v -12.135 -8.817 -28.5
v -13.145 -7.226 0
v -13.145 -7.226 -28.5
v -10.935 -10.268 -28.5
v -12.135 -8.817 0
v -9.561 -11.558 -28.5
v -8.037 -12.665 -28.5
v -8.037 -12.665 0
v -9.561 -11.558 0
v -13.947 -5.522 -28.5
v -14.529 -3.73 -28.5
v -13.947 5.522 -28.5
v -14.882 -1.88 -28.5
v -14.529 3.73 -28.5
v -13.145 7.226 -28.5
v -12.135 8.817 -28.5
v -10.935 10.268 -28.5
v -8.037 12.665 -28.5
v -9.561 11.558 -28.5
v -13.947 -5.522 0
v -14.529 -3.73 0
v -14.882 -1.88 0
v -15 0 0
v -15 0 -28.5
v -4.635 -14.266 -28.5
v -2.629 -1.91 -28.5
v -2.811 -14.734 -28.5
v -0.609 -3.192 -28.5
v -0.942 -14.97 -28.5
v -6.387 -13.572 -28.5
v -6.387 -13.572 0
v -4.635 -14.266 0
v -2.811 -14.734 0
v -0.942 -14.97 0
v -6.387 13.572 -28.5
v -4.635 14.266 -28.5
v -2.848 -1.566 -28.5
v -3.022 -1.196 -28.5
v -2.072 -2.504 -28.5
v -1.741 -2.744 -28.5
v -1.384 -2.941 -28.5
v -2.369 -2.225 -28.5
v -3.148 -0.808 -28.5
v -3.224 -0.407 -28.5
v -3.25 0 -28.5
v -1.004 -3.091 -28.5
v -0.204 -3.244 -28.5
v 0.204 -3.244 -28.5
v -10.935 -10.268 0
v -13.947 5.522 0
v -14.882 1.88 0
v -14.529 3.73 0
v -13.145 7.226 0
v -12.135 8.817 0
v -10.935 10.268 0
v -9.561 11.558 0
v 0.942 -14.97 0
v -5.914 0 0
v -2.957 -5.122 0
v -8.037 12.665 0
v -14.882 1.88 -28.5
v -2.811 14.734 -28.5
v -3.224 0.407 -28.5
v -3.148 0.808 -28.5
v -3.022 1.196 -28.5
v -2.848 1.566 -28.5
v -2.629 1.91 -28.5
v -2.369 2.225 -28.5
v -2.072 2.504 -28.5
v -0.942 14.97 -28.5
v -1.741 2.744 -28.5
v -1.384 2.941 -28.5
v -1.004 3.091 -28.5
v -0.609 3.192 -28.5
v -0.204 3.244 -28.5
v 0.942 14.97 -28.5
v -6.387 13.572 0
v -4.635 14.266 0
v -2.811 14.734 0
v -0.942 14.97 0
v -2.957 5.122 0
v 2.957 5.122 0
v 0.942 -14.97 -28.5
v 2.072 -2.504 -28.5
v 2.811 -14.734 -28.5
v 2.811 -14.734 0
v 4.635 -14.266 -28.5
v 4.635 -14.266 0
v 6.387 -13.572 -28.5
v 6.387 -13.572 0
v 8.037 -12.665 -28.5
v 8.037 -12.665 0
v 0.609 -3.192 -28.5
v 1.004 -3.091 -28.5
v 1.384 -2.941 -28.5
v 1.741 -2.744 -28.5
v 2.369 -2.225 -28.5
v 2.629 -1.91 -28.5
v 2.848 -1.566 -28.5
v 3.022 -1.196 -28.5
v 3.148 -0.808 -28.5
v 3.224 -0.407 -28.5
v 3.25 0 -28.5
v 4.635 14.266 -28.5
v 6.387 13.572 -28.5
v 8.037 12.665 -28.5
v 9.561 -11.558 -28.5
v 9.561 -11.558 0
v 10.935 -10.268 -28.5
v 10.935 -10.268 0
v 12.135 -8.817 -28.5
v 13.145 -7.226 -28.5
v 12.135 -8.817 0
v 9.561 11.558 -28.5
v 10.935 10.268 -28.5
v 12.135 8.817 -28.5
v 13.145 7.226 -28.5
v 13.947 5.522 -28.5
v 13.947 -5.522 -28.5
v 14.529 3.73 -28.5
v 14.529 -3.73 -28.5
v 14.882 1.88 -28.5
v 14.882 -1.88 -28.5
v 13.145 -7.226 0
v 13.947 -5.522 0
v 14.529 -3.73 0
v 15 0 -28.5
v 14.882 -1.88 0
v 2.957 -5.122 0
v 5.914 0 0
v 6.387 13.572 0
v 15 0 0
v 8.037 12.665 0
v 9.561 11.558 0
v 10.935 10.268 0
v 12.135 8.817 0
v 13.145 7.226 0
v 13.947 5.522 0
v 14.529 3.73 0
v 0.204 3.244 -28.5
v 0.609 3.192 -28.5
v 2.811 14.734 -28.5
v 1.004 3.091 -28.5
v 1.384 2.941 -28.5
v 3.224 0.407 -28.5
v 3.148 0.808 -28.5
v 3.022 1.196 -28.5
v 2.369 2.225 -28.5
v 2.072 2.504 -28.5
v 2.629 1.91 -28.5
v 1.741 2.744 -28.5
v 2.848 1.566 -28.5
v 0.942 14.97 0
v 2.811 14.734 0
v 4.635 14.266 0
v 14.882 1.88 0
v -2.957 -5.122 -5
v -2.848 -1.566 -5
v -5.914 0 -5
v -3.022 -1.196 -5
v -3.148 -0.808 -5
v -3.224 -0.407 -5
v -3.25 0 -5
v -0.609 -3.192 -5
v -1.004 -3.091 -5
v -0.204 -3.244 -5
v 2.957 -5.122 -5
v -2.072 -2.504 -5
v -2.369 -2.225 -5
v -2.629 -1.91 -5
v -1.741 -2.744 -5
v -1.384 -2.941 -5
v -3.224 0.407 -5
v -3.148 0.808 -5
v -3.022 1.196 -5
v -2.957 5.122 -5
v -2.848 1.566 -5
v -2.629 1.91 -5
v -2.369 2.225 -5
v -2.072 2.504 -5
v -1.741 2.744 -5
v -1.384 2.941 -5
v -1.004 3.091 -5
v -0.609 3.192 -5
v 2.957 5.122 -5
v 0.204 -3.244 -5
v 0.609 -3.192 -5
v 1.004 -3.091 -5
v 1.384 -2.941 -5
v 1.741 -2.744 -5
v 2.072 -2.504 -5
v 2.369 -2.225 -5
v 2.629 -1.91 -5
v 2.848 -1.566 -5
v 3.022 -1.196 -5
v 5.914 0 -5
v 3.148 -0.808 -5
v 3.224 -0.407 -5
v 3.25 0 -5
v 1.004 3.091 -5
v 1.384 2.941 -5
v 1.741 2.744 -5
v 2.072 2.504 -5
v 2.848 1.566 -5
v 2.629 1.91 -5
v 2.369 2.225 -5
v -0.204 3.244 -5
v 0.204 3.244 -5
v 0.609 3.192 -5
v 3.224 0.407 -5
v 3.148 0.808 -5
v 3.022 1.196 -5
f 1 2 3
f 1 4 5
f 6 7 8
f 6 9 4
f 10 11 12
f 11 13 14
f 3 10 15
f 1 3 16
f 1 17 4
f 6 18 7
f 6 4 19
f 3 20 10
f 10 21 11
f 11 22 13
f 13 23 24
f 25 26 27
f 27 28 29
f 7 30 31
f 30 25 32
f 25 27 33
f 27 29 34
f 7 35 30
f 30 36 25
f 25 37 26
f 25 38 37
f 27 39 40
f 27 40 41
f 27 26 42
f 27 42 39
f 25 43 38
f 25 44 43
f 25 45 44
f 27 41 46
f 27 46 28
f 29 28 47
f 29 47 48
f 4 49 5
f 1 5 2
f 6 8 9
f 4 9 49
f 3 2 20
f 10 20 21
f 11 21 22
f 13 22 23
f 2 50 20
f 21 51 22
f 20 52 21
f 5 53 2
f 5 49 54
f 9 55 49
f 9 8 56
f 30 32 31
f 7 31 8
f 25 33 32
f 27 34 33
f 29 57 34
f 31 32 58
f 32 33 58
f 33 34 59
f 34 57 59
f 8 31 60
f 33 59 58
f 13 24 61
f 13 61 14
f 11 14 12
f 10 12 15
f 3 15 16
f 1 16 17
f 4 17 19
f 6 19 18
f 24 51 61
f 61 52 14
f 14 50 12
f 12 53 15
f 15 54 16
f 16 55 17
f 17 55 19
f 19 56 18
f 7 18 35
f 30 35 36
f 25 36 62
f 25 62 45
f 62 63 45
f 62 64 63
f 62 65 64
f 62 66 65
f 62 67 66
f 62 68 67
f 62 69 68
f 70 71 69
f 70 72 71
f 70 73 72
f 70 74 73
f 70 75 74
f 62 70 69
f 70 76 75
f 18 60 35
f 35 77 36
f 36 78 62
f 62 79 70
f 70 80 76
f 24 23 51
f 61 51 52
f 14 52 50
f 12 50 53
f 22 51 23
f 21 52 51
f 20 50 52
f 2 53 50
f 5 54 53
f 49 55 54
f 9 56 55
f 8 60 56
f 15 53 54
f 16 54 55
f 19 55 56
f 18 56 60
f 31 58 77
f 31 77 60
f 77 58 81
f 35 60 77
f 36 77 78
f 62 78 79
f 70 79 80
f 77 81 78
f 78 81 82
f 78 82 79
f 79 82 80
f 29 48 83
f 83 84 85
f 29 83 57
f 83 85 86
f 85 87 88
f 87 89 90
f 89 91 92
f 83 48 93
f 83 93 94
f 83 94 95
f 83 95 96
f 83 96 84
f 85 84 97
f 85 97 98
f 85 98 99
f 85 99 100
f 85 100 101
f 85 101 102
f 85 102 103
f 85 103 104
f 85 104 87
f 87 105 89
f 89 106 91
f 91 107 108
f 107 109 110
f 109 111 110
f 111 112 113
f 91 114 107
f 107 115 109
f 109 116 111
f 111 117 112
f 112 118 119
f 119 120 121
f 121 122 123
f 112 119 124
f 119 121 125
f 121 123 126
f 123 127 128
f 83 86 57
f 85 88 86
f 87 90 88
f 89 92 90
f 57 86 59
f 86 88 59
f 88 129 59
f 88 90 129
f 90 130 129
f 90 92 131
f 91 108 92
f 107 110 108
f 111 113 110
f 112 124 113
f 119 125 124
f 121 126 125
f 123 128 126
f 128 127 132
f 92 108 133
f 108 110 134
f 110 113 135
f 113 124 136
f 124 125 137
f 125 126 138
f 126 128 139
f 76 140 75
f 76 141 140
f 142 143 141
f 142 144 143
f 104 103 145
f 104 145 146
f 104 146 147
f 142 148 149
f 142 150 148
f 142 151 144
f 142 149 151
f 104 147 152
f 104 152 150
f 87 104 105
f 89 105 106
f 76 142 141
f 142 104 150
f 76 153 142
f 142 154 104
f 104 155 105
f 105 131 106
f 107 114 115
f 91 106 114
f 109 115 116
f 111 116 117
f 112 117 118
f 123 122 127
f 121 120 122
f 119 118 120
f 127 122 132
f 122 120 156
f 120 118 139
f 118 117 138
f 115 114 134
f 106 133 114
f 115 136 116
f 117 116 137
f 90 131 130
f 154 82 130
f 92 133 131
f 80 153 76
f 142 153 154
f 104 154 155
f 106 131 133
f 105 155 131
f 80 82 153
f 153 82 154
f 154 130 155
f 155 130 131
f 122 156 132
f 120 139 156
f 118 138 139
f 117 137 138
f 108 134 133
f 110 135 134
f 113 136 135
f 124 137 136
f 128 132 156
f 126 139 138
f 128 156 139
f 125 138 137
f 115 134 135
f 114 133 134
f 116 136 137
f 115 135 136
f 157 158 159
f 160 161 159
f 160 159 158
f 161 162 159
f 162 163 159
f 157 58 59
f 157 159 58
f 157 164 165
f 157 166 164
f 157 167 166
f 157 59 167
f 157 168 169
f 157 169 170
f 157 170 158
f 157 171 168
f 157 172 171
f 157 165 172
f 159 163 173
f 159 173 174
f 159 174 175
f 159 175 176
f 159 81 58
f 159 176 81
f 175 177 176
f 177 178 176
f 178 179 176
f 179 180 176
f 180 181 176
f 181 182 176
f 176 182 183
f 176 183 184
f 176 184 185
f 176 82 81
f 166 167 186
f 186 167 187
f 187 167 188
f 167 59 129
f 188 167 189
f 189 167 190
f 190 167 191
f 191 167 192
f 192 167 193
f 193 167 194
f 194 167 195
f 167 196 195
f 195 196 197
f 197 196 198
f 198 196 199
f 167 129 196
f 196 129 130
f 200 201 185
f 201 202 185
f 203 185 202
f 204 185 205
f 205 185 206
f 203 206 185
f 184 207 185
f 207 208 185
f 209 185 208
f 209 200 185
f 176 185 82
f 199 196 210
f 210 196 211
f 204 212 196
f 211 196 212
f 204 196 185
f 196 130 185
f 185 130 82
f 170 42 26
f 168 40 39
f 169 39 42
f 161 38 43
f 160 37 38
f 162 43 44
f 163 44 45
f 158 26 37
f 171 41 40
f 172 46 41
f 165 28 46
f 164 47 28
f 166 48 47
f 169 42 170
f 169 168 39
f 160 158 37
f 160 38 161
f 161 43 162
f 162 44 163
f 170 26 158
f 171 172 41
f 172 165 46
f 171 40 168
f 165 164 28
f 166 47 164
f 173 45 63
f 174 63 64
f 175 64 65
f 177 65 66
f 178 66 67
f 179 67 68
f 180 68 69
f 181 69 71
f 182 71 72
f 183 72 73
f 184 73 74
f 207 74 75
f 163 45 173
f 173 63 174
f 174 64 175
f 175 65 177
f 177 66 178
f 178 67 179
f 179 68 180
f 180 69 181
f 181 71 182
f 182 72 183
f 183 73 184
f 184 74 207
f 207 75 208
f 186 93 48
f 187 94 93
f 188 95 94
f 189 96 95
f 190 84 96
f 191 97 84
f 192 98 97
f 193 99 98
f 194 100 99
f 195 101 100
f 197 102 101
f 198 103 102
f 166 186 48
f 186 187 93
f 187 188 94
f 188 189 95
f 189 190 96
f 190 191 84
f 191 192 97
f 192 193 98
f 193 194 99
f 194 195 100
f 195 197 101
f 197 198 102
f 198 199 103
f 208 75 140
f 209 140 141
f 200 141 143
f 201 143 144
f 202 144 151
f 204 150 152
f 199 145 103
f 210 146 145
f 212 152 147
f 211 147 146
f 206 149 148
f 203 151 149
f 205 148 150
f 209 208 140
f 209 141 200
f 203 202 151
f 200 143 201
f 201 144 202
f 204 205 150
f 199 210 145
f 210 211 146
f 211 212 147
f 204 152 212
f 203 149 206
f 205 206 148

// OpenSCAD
$fn = 50;

difference() {
	union() {
		translate(v = [0, 0, -28.5]) {
			cylinder(h = 28.5, r = 15.0);
		}
		#translate(v = [0, 0, -30.0]) {
			cylinder(h = 30, r = 2.875);
		}
	}
	union() {
		translate(v = [0, 0, 0]) {
			rotate(a = [0, 0, 0]) {
				difference() {
					union() {
						translate(v = [0, 0, -5]) {
							linear_extrude(height = 5) {
								polygon(points = [[5.914249999999999, 0.0], [2.957125, 5.1218907443321156], [-2.9571249999999982, 5.1218907443321156], [-5.914249999999999, 7.242867331857232e-16], [-2.9571250000000022, -5.121890744332115], [2.9571249999999956, -5.121890744332118]]);
							}
						}
					}
					union();
				}
			}
		}
		#translate(v = [0, 0, -100.0]) {
			cylinder(h = 200, r = 3.25);
		}
	}
}
